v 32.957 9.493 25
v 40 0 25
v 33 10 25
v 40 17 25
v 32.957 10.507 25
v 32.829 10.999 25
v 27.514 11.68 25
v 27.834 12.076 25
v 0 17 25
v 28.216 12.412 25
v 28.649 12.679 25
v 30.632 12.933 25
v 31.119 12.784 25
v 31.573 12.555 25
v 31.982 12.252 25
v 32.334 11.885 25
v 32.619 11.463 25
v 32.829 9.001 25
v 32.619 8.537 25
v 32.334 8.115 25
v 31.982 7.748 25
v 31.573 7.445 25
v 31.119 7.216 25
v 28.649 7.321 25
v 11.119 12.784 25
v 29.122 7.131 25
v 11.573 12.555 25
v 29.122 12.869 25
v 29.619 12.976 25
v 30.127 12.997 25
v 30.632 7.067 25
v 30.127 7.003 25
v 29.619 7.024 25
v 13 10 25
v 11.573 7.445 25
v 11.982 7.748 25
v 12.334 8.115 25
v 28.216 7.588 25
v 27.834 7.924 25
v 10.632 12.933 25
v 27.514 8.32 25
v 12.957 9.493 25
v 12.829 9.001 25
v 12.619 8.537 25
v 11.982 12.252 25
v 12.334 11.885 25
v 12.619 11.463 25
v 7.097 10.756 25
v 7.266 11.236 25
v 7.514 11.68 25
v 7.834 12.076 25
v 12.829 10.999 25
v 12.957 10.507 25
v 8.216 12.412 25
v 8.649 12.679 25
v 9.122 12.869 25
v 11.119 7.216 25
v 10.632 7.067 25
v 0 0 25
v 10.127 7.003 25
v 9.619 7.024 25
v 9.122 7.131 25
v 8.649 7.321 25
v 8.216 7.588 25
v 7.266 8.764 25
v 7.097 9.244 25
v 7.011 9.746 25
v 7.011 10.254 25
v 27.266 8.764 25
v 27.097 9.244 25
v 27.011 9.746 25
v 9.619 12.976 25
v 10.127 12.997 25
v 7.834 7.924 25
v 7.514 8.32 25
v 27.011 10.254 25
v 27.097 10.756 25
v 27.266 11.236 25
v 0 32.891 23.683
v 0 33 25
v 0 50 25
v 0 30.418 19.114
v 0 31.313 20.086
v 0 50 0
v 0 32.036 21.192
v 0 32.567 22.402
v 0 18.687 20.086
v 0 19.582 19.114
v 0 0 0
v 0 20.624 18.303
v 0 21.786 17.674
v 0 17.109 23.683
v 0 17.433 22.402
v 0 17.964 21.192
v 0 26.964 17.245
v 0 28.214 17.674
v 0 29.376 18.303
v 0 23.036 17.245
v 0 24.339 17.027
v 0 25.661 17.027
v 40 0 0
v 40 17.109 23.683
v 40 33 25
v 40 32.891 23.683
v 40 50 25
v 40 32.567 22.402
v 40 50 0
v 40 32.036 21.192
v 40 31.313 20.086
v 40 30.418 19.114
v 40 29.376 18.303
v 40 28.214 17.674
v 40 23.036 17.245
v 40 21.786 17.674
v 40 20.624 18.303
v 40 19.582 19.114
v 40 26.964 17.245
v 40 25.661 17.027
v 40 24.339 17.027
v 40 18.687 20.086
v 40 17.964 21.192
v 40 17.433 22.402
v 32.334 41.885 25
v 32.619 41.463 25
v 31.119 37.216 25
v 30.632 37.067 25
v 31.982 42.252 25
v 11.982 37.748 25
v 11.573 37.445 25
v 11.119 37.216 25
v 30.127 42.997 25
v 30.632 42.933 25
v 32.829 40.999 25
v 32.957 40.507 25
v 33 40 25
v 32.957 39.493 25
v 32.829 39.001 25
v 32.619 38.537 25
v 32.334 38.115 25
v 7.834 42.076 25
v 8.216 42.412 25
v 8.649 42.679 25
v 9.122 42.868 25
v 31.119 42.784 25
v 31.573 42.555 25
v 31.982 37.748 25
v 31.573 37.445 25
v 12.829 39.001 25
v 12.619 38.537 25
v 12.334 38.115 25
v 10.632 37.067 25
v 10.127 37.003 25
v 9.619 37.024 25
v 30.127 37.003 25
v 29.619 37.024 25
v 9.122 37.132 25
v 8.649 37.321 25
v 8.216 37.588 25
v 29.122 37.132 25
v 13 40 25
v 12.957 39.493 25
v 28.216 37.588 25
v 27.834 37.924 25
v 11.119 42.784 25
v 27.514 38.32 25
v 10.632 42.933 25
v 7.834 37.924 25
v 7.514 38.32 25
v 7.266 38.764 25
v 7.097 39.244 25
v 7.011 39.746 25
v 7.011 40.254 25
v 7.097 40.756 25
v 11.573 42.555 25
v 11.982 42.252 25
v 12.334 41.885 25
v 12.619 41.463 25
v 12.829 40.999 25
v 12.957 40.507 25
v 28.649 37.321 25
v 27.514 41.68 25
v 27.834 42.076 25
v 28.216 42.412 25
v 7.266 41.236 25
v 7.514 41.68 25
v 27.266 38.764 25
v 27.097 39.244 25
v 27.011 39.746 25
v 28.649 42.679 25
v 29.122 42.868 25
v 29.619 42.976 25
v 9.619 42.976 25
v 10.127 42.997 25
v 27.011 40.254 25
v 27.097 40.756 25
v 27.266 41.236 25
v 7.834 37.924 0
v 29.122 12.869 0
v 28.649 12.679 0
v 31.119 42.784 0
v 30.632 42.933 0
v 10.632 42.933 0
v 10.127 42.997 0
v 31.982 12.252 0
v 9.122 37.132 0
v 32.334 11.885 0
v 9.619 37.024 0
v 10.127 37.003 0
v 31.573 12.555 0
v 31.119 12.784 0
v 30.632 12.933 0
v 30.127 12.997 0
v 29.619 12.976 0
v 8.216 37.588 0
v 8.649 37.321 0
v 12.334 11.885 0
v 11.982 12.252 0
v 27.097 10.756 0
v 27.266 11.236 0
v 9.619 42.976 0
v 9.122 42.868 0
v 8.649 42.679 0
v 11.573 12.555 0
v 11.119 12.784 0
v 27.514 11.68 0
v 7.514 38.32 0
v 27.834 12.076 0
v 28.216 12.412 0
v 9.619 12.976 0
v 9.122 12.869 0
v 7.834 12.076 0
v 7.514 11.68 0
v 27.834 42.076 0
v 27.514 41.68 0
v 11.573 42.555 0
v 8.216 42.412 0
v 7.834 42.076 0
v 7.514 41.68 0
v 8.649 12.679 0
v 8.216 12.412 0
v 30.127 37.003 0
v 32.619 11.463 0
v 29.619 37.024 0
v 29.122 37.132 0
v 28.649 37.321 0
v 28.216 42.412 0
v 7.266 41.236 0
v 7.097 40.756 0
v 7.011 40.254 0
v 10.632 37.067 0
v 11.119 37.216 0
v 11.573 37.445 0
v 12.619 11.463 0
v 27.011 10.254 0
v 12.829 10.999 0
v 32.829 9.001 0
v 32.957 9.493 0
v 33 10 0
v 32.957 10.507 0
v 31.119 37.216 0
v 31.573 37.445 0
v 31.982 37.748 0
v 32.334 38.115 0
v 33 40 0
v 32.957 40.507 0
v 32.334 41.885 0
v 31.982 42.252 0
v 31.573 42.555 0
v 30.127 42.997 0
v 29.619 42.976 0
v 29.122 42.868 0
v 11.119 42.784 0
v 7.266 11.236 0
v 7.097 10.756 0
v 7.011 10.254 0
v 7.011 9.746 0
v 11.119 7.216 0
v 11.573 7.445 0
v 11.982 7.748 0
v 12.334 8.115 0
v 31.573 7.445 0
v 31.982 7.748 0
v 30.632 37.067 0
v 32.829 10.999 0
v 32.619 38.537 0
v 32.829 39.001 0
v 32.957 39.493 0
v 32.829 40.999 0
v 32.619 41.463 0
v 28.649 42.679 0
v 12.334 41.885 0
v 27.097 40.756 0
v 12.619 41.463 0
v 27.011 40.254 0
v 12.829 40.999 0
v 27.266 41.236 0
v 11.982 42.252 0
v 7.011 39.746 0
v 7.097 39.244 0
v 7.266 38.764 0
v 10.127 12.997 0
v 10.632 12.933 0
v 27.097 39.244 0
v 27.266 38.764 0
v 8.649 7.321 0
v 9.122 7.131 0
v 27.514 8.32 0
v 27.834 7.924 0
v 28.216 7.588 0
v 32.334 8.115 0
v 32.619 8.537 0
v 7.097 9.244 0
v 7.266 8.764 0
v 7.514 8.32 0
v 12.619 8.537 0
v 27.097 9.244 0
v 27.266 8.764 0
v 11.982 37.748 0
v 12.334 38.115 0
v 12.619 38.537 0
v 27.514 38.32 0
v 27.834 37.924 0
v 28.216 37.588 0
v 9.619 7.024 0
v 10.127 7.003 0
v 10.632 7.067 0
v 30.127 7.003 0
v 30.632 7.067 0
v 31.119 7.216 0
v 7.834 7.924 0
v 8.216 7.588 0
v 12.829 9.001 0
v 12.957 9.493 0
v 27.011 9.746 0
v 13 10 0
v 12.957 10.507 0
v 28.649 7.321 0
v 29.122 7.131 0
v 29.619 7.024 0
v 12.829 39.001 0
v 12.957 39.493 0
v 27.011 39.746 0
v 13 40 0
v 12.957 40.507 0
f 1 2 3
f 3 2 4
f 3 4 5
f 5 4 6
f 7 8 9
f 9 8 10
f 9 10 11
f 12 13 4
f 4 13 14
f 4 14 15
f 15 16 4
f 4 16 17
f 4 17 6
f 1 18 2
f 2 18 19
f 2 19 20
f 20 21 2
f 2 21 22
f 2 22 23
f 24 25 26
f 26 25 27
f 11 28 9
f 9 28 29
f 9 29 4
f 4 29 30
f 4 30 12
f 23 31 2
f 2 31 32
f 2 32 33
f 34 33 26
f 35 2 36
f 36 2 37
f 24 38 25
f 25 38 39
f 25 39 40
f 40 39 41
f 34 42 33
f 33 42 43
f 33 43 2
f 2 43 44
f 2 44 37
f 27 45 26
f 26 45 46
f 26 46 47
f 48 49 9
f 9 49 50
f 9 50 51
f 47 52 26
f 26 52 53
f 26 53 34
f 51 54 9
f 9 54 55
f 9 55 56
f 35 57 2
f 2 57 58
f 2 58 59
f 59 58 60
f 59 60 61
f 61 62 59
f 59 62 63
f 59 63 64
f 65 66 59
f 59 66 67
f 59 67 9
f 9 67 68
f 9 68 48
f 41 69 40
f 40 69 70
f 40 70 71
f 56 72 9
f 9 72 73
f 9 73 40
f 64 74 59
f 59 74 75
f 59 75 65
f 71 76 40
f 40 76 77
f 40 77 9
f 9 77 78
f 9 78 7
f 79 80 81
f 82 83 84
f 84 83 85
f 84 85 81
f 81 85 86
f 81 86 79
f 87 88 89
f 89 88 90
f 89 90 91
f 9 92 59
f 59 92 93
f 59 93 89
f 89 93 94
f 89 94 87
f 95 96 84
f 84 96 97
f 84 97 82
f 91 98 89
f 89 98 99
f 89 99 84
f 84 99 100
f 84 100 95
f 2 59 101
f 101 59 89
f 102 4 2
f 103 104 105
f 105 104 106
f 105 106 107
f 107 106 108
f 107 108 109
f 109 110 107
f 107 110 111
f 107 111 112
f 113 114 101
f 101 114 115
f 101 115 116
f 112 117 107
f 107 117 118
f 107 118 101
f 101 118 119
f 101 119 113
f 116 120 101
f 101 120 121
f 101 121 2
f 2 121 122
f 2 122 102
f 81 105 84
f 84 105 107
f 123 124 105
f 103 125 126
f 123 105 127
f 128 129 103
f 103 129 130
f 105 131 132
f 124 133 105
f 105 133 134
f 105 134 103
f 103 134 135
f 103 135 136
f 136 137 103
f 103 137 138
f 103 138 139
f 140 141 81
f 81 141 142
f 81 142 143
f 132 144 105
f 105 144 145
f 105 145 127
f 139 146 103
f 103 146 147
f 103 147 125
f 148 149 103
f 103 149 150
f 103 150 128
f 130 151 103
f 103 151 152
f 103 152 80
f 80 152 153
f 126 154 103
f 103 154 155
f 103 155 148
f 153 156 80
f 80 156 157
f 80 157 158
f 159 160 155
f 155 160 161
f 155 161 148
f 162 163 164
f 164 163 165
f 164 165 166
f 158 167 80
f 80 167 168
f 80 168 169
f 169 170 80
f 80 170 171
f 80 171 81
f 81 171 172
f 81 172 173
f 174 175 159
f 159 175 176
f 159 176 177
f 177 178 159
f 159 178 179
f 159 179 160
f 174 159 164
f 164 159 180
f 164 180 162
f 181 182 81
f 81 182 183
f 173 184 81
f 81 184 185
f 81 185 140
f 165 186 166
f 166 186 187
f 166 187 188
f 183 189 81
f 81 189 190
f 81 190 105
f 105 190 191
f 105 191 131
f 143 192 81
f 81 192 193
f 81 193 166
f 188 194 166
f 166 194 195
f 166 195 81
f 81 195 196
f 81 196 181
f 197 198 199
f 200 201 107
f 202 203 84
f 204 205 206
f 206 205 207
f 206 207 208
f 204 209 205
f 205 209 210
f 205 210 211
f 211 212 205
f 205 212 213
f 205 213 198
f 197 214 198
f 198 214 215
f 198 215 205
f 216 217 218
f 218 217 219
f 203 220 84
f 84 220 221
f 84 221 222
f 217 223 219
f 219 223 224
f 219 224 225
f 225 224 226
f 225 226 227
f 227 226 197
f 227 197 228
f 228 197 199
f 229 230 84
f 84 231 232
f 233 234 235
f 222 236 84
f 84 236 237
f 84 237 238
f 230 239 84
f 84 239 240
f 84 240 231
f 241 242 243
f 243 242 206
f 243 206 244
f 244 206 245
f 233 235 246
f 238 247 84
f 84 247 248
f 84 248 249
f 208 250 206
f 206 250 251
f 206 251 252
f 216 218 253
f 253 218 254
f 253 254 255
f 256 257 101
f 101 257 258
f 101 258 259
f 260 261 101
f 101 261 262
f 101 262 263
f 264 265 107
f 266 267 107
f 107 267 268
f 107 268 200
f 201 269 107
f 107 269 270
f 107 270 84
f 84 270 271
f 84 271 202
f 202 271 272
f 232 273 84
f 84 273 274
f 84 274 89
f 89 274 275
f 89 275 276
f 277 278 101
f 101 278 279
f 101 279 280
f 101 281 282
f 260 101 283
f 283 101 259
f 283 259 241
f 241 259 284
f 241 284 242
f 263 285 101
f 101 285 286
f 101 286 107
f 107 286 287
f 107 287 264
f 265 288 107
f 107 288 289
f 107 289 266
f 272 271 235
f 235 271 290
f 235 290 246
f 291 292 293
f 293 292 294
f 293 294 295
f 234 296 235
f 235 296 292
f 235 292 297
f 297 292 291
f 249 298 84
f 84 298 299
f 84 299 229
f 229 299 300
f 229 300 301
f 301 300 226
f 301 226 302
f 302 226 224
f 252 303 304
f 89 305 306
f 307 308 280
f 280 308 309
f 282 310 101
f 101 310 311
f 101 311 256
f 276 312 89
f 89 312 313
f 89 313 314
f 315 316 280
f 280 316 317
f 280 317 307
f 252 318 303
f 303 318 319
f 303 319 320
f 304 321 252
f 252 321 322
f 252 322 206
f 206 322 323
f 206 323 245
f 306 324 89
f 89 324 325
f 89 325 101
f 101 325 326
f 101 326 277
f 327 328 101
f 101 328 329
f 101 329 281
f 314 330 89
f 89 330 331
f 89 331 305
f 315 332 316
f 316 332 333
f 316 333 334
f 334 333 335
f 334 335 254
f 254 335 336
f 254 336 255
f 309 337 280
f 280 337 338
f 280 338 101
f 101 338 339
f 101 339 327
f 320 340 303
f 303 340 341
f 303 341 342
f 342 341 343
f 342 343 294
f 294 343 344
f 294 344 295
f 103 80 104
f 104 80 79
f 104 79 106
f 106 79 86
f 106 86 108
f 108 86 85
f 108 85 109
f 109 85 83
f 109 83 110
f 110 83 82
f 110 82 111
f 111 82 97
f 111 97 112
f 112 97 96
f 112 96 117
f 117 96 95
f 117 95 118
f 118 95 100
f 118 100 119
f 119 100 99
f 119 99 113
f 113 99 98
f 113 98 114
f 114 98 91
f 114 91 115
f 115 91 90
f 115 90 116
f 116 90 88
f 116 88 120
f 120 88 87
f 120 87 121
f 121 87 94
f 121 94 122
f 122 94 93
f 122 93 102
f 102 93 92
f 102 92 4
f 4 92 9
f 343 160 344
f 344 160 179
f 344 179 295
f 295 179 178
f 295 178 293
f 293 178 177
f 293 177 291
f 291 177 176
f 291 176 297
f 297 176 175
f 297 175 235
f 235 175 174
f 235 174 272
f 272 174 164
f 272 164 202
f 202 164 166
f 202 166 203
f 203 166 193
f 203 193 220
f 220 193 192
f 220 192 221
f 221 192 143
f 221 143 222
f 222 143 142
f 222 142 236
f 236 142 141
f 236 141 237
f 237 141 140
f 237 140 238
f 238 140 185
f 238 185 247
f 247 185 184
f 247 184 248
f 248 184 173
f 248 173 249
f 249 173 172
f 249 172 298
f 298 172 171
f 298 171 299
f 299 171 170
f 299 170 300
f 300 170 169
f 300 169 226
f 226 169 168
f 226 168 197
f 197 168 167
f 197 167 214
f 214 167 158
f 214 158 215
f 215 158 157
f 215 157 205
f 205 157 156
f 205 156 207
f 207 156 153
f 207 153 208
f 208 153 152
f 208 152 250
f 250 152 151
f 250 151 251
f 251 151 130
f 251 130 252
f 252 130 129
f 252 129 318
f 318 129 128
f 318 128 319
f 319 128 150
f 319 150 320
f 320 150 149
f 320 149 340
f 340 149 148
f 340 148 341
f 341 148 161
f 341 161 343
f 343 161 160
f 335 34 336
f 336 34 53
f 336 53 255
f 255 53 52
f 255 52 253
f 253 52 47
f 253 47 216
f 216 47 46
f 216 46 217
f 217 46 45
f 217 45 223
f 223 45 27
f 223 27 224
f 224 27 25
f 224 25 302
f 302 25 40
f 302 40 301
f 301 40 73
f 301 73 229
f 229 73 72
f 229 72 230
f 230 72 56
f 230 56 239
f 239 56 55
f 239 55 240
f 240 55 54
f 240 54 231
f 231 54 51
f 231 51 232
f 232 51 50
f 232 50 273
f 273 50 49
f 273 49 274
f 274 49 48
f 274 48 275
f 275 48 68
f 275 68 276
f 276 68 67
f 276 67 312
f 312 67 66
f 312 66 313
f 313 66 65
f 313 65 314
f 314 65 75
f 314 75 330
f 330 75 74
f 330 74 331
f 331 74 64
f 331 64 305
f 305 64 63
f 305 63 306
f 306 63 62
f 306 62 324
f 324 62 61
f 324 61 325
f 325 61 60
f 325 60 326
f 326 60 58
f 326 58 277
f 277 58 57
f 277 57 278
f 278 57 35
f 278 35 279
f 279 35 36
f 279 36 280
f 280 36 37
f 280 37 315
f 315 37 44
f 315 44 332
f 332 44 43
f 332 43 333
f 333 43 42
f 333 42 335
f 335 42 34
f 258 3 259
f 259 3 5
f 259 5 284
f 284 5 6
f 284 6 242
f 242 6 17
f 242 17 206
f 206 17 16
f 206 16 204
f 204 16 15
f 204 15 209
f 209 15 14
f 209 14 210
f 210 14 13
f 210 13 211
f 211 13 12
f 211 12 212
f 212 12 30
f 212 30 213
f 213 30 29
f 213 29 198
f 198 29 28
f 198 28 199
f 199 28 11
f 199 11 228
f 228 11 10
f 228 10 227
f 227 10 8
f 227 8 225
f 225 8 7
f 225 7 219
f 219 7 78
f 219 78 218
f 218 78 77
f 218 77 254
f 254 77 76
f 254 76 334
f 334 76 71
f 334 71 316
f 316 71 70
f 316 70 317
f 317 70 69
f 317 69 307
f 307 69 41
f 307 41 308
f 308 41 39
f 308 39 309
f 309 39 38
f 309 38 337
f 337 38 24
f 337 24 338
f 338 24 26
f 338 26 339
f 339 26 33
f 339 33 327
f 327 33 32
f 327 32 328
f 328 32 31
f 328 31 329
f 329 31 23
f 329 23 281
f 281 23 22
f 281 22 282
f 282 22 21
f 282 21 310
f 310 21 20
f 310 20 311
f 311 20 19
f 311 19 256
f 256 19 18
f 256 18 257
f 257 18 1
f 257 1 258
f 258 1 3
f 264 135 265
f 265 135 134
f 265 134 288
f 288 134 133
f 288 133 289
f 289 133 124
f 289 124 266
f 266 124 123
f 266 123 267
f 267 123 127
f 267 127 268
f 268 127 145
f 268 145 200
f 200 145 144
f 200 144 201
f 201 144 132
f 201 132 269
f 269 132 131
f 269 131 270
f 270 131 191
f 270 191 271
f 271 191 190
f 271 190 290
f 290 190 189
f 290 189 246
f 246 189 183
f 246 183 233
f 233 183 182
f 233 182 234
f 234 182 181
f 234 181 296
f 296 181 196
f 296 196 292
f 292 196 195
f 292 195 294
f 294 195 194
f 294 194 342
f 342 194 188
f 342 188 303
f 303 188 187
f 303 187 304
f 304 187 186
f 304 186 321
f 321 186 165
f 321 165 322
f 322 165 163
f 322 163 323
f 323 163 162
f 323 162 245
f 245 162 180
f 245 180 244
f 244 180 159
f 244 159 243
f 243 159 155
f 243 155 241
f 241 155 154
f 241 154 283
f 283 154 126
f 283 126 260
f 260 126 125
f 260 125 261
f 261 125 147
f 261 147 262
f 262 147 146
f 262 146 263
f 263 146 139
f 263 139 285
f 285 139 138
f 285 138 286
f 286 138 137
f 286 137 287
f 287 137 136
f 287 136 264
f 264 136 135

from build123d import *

# Parameters (mm, degrees)
SKETCH1_W           = 40
SKETCH1_H           = 50
BOSS_EXTRUDE1_DEPTH = 25
SKETCH2_R           = 8
CUT_EXTRUDE1_DEPTH  = 58
SKETCH3_R           = 3
CUT_EXTRUDE2_DEPTH  = 25


with BuildPart() as part:
    # Sketch1 → Boss-Extrude1 (new body)
    with BuildSketch(Plane.XY):
        with Locations((20, 25)):
            Rectangle(SKETCH1_W, SKETCH1_H)
    extrude(amount=BOSS_EXTRUDE1_DEPTH)

    # Sketch2 → Cut-Extrude1 (cut)
    with BuildSketch(Plane.ZY):
        with Locations((25, 25)):
            Circle(SKETCH2_R)
    extrude(amount=-CUT_EXTRUDE1_DEPTH, mode=Mode.SUBTRACT)

    # Sketch3 → Cut-Extrude2 (cut)
    with BuildSketch(Plane.XY.offset(25)):
        with Locations((10, 40)):
            Circle(SKETCH3_R)
        with Locations((30, 40)):
            Circle(SKETCH3_R)
        with Locations((30, 10)):
            Circle(SKETCH3_R)
        with Locations((10, 10)):
            Circle(SKETCH3_R)
    extrude(amount=-CUT_EXTRUDE2_DEPTH, mode=Mode.SUBTRACT)


solid = part.part
